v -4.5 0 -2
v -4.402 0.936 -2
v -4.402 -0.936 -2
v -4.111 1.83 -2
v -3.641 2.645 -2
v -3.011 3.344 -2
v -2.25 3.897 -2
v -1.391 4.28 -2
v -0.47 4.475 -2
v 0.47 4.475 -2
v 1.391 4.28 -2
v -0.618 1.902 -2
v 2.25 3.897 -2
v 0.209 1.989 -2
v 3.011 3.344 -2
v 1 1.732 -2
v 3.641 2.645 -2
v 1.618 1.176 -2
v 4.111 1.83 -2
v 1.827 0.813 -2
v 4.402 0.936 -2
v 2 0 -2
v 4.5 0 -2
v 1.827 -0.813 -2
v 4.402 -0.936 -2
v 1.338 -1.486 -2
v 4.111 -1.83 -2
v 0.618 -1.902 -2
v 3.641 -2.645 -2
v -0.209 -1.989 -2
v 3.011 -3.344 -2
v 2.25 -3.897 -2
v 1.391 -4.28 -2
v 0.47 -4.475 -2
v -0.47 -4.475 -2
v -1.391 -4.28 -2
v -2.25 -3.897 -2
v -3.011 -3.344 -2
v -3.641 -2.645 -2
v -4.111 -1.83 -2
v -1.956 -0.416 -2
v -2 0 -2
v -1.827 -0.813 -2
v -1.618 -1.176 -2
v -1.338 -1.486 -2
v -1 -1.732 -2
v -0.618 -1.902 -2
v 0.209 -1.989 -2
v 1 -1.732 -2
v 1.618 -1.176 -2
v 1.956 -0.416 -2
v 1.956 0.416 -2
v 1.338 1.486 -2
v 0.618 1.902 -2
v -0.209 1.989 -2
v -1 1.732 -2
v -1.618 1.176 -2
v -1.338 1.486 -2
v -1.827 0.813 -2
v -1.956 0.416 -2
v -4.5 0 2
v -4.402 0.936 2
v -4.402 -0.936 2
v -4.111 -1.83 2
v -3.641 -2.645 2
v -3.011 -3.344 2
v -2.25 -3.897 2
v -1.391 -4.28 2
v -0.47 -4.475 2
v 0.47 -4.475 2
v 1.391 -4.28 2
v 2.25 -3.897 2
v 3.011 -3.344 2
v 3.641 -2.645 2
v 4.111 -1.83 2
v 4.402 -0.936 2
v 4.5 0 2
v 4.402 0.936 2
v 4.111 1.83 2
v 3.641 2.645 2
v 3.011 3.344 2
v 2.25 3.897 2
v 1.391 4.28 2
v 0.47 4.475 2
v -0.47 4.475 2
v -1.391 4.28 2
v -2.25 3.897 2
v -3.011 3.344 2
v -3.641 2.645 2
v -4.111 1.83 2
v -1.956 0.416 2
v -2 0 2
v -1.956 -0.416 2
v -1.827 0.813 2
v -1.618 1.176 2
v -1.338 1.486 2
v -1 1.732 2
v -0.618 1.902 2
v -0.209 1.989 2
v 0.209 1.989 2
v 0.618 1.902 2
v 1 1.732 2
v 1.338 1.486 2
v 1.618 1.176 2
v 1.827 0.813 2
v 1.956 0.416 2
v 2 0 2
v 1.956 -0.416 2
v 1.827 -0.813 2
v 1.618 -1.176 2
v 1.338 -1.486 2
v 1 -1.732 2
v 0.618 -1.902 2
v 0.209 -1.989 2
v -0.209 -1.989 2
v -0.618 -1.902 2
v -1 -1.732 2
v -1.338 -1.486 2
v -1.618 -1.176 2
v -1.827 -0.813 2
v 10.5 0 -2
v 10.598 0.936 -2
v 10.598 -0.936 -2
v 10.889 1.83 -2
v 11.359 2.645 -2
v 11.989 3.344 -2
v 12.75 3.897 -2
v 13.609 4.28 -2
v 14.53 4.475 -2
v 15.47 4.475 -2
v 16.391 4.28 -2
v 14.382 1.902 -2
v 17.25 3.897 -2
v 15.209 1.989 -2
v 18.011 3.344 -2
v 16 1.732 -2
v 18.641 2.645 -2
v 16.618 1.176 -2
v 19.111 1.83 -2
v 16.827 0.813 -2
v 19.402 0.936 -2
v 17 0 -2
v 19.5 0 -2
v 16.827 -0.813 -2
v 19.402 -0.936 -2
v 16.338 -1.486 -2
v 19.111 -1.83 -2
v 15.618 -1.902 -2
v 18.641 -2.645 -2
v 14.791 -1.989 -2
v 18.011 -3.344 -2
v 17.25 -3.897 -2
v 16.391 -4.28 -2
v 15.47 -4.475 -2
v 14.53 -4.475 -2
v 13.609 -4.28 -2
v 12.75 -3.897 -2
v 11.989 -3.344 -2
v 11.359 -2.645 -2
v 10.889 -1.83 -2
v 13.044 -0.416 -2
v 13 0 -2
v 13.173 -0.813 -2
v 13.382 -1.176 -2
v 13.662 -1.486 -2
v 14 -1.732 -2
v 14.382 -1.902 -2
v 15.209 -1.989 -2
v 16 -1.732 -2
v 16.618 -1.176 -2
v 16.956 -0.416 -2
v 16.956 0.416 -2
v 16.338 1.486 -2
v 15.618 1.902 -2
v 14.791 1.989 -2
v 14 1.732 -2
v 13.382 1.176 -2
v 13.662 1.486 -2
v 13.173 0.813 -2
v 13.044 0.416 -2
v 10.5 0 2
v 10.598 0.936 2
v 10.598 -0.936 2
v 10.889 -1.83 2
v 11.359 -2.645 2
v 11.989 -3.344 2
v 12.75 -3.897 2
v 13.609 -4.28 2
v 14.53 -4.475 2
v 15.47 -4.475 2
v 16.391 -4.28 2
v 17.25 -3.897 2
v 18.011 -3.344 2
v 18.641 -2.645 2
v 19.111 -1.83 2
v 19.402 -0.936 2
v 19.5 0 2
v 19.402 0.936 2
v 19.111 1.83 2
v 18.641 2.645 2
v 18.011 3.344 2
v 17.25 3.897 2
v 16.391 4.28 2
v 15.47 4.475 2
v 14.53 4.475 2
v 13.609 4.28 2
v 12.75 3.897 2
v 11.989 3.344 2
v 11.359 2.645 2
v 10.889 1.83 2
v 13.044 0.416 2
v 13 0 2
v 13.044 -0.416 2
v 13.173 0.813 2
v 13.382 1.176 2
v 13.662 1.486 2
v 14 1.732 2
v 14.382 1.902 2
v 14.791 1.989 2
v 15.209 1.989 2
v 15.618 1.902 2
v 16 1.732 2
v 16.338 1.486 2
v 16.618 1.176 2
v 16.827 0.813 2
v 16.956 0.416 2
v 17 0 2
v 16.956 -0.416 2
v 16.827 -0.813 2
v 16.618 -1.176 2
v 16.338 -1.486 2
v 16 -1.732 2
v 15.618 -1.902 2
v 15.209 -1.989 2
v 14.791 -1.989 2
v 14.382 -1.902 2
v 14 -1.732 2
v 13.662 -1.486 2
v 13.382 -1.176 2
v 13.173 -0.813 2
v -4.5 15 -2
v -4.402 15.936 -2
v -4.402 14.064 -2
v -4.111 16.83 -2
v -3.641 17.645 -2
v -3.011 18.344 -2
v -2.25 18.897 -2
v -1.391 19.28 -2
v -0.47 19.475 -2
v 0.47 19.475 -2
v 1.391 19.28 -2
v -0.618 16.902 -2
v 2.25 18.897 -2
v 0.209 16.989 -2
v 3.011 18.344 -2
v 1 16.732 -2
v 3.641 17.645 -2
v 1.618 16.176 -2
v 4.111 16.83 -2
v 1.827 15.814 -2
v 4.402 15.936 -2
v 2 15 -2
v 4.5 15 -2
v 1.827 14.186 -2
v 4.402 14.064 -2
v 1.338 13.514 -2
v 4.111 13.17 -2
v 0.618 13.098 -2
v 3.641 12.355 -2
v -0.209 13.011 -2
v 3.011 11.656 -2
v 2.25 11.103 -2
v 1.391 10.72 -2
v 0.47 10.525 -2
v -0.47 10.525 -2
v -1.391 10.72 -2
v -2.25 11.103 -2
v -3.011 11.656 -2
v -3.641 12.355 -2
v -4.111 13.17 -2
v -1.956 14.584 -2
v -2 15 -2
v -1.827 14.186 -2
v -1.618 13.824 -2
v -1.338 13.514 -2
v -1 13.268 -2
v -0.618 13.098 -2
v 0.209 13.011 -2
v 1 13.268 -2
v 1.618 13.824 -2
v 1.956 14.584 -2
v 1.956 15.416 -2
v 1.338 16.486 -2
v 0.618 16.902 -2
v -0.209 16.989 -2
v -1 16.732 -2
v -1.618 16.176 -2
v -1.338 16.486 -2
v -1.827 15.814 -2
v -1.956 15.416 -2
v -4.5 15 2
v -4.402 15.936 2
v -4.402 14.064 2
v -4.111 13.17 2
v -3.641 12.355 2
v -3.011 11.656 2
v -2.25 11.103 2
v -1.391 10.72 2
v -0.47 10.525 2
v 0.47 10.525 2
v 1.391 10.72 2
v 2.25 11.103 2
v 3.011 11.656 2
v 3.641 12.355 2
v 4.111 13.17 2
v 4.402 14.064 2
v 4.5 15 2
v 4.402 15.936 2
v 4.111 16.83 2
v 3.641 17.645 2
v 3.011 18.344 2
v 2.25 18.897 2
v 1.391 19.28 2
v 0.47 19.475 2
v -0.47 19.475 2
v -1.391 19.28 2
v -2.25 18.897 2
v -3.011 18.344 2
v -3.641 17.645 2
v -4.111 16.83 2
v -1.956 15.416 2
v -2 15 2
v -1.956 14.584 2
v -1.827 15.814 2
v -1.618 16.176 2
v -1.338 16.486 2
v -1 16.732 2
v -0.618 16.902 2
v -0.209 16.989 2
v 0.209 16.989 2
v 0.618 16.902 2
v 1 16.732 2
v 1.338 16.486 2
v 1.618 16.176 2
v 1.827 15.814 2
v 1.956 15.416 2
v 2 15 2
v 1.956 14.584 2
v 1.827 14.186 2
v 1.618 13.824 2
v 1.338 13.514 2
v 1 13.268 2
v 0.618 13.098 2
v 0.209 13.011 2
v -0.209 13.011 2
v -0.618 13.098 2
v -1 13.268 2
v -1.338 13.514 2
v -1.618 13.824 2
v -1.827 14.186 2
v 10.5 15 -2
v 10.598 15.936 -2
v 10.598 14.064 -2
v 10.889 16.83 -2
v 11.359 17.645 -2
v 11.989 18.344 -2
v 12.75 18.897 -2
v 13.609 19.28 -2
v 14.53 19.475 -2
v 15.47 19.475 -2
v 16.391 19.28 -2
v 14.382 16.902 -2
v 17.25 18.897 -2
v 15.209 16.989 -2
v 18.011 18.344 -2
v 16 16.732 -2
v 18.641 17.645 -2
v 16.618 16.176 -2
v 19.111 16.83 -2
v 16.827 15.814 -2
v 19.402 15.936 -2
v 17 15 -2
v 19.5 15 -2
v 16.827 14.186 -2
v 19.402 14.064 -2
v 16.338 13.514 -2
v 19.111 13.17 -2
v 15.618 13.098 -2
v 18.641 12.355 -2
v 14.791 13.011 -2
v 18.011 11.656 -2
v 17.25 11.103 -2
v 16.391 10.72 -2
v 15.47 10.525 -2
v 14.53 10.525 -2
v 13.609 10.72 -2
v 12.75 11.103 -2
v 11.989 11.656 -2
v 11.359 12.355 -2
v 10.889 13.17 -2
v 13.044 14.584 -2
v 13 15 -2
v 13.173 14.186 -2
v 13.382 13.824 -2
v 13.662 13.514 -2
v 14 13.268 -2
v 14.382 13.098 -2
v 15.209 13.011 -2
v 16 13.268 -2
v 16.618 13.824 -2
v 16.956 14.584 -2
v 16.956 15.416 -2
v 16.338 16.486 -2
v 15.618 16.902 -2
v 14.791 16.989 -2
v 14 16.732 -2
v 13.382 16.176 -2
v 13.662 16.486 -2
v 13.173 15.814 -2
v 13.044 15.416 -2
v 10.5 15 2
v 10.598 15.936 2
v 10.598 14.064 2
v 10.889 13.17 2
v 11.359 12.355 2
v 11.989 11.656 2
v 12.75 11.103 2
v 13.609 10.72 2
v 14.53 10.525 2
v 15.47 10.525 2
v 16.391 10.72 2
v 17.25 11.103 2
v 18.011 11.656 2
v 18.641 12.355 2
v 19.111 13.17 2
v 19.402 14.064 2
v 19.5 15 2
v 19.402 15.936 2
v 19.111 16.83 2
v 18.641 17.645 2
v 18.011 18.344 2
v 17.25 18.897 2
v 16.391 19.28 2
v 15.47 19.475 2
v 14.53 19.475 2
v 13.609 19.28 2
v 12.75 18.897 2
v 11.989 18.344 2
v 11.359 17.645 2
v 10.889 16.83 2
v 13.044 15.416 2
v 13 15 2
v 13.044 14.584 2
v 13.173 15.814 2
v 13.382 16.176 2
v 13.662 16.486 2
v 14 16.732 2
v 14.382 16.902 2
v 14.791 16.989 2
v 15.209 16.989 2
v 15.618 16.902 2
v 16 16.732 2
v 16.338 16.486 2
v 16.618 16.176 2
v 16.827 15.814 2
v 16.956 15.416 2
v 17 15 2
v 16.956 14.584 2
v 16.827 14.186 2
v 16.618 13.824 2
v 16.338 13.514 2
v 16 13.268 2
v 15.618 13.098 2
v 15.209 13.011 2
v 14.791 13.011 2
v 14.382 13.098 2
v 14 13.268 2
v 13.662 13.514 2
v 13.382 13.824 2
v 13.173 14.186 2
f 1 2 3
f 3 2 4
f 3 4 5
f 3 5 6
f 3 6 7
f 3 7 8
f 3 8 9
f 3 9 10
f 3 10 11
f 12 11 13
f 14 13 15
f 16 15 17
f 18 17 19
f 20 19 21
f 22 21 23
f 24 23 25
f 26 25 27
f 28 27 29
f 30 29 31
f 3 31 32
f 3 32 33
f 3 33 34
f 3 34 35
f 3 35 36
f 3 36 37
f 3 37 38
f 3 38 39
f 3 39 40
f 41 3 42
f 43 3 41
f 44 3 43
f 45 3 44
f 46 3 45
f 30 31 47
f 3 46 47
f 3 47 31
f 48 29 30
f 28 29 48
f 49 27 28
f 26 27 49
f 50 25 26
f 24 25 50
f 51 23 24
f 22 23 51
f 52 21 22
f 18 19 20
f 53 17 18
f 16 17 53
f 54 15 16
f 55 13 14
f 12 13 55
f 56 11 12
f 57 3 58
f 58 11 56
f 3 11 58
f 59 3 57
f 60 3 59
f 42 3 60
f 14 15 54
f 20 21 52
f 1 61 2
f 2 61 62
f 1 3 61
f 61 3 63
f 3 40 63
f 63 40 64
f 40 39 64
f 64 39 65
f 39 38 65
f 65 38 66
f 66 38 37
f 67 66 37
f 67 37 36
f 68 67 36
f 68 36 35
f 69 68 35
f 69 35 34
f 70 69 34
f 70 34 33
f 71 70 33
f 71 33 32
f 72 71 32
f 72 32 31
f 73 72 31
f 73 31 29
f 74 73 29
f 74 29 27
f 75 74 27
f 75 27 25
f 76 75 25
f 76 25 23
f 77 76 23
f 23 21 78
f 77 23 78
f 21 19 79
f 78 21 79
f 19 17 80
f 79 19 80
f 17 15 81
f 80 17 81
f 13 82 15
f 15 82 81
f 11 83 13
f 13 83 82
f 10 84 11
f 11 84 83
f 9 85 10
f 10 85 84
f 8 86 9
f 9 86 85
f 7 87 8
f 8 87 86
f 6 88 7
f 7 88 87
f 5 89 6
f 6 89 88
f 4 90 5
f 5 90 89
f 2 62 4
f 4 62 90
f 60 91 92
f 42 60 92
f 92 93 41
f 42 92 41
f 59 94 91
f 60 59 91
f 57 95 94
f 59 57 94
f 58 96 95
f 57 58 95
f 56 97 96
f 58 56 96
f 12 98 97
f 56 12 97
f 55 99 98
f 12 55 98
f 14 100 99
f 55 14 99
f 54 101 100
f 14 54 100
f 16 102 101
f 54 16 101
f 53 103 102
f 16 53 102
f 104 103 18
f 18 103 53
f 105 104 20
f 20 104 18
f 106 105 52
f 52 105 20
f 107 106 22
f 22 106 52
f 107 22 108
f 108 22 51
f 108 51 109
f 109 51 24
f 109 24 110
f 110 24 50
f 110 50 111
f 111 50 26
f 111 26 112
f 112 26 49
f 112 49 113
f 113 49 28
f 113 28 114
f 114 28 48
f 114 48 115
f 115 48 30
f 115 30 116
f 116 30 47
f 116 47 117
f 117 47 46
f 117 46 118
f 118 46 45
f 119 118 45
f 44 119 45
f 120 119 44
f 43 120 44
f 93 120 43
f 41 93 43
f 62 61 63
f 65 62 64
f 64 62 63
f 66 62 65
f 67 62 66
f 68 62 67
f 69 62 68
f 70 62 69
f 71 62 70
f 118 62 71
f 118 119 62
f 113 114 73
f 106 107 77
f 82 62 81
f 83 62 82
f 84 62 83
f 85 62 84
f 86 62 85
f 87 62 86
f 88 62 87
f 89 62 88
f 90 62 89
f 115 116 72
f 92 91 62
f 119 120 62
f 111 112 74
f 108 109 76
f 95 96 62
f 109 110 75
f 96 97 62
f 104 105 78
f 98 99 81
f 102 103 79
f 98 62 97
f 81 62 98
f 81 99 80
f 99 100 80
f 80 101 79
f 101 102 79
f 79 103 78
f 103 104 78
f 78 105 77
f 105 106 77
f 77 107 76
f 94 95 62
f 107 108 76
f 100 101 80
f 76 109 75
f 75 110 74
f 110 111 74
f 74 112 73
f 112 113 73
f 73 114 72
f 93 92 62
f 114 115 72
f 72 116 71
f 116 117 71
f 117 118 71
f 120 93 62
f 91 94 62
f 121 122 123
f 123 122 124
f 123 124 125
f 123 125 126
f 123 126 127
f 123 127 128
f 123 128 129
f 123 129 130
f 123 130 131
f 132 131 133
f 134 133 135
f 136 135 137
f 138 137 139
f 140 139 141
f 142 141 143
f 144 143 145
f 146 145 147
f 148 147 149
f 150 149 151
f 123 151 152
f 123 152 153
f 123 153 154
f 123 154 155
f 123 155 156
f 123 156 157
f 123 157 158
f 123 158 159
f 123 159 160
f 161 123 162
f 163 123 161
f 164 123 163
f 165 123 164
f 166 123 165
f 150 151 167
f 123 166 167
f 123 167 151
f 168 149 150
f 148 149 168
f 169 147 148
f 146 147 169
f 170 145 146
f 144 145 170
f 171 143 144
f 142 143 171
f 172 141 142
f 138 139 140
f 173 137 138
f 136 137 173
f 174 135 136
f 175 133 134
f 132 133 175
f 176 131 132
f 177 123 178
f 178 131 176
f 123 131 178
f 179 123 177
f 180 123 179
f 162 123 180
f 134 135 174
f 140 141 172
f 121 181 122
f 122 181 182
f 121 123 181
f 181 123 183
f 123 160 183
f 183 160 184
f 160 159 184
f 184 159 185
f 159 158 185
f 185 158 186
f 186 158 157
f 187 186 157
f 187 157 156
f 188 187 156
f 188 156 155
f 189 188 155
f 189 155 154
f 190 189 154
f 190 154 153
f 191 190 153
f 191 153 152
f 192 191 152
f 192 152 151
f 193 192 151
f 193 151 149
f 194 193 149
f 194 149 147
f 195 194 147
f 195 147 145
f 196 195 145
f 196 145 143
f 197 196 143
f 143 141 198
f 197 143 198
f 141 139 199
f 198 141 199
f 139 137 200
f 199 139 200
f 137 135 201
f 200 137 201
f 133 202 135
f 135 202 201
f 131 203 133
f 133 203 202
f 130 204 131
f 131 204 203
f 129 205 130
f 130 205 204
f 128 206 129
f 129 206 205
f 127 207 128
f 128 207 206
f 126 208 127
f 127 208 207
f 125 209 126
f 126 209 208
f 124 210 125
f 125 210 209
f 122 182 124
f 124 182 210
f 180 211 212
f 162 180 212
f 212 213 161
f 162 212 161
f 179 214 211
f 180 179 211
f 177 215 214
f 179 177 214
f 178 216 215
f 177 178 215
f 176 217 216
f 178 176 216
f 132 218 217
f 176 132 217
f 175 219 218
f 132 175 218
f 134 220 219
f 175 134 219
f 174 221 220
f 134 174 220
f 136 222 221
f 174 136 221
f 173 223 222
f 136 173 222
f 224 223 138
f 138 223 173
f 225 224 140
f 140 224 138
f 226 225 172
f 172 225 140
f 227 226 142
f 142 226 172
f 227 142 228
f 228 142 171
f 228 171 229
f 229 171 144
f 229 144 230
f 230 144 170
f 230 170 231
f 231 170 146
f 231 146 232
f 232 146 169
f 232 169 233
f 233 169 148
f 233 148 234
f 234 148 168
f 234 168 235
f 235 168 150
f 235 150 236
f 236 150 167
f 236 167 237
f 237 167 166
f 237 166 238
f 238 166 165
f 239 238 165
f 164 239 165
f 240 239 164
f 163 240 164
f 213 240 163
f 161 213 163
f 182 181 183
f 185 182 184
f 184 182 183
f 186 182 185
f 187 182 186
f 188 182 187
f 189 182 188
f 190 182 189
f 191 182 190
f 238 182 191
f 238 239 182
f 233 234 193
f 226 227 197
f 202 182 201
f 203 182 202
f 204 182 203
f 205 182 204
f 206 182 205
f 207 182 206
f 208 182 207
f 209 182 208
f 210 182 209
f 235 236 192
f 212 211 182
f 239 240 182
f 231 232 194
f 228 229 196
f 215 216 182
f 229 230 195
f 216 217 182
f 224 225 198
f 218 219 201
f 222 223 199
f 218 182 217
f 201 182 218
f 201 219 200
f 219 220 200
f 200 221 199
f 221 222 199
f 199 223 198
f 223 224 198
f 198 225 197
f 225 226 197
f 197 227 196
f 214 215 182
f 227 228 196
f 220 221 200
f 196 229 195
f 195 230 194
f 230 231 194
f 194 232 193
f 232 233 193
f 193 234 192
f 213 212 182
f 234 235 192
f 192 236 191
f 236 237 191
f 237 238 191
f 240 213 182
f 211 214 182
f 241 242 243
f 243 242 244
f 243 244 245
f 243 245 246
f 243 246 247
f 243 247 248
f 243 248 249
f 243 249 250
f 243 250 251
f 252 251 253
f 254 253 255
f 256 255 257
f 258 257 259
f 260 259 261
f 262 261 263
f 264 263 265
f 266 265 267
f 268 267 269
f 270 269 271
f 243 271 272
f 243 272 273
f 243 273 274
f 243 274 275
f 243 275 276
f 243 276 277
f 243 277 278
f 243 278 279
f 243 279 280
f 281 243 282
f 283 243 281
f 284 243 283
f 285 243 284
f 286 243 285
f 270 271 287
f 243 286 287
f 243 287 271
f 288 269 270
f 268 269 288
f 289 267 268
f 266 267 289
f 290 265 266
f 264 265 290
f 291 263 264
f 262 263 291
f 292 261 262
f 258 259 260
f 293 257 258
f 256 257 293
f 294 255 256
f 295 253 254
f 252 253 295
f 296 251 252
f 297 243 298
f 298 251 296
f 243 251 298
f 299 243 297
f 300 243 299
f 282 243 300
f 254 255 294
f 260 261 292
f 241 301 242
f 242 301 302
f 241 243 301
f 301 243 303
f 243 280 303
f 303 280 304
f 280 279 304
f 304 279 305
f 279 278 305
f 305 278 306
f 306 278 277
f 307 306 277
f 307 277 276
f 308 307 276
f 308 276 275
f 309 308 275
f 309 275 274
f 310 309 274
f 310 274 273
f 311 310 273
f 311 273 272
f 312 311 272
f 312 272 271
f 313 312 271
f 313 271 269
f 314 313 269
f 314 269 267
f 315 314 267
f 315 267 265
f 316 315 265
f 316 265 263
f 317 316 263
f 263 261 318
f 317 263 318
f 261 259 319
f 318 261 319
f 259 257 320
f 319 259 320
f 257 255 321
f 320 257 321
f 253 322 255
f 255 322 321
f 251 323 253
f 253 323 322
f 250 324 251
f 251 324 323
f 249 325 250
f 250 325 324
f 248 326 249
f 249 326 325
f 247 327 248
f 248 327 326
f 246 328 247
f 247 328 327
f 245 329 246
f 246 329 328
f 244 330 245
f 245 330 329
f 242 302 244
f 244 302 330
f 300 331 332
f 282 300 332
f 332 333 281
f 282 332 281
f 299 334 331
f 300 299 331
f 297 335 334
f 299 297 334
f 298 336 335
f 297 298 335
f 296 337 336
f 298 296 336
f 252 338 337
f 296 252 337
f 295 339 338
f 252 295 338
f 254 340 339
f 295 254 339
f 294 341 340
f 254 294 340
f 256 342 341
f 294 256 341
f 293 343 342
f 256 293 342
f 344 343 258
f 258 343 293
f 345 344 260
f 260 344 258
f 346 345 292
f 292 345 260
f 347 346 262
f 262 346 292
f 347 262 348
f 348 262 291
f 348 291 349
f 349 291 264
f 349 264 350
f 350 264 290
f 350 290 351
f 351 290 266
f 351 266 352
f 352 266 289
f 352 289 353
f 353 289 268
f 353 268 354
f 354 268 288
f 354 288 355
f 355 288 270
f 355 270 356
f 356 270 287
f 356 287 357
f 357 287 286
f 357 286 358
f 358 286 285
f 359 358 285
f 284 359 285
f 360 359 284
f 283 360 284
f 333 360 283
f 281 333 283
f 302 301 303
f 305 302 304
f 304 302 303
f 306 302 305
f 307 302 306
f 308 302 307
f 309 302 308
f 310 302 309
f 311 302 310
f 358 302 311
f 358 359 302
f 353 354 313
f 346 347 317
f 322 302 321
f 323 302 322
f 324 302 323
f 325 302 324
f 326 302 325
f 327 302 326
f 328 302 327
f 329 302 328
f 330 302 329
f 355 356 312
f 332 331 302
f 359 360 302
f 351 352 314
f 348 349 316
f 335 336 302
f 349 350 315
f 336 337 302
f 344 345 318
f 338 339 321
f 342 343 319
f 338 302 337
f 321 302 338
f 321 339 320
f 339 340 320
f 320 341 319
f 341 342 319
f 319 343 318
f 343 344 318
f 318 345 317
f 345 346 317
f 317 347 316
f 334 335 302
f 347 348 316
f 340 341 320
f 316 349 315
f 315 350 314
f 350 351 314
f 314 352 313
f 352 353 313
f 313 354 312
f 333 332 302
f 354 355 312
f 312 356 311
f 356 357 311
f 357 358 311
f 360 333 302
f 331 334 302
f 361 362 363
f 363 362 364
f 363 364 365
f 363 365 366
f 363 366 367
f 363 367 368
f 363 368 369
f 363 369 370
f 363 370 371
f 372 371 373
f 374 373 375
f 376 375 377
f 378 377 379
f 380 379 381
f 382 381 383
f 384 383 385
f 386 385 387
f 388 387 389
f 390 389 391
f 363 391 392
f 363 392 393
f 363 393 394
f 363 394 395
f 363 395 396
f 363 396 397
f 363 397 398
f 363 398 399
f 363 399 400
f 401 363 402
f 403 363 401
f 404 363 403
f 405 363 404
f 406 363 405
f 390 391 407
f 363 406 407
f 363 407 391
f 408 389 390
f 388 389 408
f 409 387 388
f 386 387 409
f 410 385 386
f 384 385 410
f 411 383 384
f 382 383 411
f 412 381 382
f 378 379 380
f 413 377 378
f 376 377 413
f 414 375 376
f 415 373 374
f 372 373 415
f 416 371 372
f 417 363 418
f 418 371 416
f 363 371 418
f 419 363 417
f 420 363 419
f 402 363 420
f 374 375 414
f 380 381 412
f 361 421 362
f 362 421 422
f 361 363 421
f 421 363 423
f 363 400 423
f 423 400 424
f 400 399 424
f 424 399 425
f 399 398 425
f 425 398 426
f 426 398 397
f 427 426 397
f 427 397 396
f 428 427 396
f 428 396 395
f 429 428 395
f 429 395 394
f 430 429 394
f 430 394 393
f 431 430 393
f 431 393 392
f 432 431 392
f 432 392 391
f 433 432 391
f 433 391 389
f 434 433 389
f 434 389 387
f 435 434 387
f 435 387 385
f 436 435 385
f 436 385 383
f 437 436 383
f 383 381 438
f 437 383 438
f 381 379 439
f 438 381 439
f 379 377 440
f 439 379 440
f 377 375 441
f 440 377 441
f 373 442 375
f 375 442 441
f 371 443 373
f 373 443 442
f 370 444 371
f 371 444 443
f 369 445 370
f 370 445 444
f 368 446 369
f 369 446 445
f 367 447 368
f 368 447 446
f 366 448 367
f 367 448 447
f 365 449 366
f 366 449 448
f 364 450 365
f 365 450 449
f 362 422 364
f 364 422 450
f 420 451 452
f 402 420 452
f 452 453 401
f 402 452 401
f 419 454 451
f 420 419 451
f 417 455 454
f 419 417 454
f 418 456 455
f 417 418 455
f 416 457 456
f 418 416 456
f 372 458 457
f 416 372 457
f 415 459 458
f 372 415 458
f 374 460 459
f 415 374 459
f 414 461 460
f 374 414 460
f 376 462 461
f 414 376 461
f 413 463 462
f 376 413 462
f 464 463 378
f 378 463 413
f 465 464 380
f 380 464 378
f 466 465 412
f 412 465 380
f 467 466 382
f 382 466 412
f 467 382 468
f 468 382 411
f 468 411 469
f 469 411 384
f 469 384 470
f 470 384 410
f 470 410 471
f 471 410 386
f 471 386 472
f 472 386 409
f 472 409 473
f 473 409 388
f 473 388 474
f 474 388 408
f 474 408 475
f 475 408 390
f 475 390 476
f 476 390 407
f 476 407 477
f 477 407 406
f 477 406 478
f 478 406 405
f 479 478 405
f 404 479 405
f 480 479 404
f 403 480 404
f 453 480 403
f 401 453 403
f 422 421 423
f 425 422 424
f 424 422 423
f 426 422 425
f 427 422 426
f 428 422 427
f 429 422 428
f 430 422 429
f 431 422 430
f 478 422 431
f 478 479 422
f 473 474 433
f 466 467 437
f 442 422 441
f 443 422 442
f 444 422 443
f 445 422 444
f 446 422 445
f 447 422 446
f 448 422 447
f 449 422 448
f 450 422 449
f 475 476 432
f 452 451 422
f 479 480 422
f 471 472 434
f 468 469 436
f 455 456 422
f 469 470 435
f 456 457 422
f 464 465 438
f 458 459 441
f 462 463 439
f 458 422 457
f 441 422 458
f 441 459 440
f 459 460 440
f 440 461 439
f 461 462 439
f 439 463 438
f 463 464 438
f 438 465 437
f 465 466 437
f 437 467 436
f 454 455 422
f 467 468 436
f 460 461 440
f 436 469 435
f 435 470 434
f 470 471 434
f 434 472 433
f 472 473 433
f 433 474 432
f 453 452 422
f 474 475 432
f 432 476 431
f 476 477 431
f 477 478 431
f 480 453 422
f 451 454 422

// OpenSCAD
$fn=30;
module bearing(dext,dint){
	difference(){
		cylinder(4,dext/2,dext/2,center=true);
		cylinder(4,dint/2,dint/2,center=true);
	}
}

bearing(9,4);
translate([15,0,0]){
	bearing(9,4);
}
translate([0,15,0]){
	bearing(9,4);
	translate([15,0,0]){
	bearing(9,4);
	}
}
